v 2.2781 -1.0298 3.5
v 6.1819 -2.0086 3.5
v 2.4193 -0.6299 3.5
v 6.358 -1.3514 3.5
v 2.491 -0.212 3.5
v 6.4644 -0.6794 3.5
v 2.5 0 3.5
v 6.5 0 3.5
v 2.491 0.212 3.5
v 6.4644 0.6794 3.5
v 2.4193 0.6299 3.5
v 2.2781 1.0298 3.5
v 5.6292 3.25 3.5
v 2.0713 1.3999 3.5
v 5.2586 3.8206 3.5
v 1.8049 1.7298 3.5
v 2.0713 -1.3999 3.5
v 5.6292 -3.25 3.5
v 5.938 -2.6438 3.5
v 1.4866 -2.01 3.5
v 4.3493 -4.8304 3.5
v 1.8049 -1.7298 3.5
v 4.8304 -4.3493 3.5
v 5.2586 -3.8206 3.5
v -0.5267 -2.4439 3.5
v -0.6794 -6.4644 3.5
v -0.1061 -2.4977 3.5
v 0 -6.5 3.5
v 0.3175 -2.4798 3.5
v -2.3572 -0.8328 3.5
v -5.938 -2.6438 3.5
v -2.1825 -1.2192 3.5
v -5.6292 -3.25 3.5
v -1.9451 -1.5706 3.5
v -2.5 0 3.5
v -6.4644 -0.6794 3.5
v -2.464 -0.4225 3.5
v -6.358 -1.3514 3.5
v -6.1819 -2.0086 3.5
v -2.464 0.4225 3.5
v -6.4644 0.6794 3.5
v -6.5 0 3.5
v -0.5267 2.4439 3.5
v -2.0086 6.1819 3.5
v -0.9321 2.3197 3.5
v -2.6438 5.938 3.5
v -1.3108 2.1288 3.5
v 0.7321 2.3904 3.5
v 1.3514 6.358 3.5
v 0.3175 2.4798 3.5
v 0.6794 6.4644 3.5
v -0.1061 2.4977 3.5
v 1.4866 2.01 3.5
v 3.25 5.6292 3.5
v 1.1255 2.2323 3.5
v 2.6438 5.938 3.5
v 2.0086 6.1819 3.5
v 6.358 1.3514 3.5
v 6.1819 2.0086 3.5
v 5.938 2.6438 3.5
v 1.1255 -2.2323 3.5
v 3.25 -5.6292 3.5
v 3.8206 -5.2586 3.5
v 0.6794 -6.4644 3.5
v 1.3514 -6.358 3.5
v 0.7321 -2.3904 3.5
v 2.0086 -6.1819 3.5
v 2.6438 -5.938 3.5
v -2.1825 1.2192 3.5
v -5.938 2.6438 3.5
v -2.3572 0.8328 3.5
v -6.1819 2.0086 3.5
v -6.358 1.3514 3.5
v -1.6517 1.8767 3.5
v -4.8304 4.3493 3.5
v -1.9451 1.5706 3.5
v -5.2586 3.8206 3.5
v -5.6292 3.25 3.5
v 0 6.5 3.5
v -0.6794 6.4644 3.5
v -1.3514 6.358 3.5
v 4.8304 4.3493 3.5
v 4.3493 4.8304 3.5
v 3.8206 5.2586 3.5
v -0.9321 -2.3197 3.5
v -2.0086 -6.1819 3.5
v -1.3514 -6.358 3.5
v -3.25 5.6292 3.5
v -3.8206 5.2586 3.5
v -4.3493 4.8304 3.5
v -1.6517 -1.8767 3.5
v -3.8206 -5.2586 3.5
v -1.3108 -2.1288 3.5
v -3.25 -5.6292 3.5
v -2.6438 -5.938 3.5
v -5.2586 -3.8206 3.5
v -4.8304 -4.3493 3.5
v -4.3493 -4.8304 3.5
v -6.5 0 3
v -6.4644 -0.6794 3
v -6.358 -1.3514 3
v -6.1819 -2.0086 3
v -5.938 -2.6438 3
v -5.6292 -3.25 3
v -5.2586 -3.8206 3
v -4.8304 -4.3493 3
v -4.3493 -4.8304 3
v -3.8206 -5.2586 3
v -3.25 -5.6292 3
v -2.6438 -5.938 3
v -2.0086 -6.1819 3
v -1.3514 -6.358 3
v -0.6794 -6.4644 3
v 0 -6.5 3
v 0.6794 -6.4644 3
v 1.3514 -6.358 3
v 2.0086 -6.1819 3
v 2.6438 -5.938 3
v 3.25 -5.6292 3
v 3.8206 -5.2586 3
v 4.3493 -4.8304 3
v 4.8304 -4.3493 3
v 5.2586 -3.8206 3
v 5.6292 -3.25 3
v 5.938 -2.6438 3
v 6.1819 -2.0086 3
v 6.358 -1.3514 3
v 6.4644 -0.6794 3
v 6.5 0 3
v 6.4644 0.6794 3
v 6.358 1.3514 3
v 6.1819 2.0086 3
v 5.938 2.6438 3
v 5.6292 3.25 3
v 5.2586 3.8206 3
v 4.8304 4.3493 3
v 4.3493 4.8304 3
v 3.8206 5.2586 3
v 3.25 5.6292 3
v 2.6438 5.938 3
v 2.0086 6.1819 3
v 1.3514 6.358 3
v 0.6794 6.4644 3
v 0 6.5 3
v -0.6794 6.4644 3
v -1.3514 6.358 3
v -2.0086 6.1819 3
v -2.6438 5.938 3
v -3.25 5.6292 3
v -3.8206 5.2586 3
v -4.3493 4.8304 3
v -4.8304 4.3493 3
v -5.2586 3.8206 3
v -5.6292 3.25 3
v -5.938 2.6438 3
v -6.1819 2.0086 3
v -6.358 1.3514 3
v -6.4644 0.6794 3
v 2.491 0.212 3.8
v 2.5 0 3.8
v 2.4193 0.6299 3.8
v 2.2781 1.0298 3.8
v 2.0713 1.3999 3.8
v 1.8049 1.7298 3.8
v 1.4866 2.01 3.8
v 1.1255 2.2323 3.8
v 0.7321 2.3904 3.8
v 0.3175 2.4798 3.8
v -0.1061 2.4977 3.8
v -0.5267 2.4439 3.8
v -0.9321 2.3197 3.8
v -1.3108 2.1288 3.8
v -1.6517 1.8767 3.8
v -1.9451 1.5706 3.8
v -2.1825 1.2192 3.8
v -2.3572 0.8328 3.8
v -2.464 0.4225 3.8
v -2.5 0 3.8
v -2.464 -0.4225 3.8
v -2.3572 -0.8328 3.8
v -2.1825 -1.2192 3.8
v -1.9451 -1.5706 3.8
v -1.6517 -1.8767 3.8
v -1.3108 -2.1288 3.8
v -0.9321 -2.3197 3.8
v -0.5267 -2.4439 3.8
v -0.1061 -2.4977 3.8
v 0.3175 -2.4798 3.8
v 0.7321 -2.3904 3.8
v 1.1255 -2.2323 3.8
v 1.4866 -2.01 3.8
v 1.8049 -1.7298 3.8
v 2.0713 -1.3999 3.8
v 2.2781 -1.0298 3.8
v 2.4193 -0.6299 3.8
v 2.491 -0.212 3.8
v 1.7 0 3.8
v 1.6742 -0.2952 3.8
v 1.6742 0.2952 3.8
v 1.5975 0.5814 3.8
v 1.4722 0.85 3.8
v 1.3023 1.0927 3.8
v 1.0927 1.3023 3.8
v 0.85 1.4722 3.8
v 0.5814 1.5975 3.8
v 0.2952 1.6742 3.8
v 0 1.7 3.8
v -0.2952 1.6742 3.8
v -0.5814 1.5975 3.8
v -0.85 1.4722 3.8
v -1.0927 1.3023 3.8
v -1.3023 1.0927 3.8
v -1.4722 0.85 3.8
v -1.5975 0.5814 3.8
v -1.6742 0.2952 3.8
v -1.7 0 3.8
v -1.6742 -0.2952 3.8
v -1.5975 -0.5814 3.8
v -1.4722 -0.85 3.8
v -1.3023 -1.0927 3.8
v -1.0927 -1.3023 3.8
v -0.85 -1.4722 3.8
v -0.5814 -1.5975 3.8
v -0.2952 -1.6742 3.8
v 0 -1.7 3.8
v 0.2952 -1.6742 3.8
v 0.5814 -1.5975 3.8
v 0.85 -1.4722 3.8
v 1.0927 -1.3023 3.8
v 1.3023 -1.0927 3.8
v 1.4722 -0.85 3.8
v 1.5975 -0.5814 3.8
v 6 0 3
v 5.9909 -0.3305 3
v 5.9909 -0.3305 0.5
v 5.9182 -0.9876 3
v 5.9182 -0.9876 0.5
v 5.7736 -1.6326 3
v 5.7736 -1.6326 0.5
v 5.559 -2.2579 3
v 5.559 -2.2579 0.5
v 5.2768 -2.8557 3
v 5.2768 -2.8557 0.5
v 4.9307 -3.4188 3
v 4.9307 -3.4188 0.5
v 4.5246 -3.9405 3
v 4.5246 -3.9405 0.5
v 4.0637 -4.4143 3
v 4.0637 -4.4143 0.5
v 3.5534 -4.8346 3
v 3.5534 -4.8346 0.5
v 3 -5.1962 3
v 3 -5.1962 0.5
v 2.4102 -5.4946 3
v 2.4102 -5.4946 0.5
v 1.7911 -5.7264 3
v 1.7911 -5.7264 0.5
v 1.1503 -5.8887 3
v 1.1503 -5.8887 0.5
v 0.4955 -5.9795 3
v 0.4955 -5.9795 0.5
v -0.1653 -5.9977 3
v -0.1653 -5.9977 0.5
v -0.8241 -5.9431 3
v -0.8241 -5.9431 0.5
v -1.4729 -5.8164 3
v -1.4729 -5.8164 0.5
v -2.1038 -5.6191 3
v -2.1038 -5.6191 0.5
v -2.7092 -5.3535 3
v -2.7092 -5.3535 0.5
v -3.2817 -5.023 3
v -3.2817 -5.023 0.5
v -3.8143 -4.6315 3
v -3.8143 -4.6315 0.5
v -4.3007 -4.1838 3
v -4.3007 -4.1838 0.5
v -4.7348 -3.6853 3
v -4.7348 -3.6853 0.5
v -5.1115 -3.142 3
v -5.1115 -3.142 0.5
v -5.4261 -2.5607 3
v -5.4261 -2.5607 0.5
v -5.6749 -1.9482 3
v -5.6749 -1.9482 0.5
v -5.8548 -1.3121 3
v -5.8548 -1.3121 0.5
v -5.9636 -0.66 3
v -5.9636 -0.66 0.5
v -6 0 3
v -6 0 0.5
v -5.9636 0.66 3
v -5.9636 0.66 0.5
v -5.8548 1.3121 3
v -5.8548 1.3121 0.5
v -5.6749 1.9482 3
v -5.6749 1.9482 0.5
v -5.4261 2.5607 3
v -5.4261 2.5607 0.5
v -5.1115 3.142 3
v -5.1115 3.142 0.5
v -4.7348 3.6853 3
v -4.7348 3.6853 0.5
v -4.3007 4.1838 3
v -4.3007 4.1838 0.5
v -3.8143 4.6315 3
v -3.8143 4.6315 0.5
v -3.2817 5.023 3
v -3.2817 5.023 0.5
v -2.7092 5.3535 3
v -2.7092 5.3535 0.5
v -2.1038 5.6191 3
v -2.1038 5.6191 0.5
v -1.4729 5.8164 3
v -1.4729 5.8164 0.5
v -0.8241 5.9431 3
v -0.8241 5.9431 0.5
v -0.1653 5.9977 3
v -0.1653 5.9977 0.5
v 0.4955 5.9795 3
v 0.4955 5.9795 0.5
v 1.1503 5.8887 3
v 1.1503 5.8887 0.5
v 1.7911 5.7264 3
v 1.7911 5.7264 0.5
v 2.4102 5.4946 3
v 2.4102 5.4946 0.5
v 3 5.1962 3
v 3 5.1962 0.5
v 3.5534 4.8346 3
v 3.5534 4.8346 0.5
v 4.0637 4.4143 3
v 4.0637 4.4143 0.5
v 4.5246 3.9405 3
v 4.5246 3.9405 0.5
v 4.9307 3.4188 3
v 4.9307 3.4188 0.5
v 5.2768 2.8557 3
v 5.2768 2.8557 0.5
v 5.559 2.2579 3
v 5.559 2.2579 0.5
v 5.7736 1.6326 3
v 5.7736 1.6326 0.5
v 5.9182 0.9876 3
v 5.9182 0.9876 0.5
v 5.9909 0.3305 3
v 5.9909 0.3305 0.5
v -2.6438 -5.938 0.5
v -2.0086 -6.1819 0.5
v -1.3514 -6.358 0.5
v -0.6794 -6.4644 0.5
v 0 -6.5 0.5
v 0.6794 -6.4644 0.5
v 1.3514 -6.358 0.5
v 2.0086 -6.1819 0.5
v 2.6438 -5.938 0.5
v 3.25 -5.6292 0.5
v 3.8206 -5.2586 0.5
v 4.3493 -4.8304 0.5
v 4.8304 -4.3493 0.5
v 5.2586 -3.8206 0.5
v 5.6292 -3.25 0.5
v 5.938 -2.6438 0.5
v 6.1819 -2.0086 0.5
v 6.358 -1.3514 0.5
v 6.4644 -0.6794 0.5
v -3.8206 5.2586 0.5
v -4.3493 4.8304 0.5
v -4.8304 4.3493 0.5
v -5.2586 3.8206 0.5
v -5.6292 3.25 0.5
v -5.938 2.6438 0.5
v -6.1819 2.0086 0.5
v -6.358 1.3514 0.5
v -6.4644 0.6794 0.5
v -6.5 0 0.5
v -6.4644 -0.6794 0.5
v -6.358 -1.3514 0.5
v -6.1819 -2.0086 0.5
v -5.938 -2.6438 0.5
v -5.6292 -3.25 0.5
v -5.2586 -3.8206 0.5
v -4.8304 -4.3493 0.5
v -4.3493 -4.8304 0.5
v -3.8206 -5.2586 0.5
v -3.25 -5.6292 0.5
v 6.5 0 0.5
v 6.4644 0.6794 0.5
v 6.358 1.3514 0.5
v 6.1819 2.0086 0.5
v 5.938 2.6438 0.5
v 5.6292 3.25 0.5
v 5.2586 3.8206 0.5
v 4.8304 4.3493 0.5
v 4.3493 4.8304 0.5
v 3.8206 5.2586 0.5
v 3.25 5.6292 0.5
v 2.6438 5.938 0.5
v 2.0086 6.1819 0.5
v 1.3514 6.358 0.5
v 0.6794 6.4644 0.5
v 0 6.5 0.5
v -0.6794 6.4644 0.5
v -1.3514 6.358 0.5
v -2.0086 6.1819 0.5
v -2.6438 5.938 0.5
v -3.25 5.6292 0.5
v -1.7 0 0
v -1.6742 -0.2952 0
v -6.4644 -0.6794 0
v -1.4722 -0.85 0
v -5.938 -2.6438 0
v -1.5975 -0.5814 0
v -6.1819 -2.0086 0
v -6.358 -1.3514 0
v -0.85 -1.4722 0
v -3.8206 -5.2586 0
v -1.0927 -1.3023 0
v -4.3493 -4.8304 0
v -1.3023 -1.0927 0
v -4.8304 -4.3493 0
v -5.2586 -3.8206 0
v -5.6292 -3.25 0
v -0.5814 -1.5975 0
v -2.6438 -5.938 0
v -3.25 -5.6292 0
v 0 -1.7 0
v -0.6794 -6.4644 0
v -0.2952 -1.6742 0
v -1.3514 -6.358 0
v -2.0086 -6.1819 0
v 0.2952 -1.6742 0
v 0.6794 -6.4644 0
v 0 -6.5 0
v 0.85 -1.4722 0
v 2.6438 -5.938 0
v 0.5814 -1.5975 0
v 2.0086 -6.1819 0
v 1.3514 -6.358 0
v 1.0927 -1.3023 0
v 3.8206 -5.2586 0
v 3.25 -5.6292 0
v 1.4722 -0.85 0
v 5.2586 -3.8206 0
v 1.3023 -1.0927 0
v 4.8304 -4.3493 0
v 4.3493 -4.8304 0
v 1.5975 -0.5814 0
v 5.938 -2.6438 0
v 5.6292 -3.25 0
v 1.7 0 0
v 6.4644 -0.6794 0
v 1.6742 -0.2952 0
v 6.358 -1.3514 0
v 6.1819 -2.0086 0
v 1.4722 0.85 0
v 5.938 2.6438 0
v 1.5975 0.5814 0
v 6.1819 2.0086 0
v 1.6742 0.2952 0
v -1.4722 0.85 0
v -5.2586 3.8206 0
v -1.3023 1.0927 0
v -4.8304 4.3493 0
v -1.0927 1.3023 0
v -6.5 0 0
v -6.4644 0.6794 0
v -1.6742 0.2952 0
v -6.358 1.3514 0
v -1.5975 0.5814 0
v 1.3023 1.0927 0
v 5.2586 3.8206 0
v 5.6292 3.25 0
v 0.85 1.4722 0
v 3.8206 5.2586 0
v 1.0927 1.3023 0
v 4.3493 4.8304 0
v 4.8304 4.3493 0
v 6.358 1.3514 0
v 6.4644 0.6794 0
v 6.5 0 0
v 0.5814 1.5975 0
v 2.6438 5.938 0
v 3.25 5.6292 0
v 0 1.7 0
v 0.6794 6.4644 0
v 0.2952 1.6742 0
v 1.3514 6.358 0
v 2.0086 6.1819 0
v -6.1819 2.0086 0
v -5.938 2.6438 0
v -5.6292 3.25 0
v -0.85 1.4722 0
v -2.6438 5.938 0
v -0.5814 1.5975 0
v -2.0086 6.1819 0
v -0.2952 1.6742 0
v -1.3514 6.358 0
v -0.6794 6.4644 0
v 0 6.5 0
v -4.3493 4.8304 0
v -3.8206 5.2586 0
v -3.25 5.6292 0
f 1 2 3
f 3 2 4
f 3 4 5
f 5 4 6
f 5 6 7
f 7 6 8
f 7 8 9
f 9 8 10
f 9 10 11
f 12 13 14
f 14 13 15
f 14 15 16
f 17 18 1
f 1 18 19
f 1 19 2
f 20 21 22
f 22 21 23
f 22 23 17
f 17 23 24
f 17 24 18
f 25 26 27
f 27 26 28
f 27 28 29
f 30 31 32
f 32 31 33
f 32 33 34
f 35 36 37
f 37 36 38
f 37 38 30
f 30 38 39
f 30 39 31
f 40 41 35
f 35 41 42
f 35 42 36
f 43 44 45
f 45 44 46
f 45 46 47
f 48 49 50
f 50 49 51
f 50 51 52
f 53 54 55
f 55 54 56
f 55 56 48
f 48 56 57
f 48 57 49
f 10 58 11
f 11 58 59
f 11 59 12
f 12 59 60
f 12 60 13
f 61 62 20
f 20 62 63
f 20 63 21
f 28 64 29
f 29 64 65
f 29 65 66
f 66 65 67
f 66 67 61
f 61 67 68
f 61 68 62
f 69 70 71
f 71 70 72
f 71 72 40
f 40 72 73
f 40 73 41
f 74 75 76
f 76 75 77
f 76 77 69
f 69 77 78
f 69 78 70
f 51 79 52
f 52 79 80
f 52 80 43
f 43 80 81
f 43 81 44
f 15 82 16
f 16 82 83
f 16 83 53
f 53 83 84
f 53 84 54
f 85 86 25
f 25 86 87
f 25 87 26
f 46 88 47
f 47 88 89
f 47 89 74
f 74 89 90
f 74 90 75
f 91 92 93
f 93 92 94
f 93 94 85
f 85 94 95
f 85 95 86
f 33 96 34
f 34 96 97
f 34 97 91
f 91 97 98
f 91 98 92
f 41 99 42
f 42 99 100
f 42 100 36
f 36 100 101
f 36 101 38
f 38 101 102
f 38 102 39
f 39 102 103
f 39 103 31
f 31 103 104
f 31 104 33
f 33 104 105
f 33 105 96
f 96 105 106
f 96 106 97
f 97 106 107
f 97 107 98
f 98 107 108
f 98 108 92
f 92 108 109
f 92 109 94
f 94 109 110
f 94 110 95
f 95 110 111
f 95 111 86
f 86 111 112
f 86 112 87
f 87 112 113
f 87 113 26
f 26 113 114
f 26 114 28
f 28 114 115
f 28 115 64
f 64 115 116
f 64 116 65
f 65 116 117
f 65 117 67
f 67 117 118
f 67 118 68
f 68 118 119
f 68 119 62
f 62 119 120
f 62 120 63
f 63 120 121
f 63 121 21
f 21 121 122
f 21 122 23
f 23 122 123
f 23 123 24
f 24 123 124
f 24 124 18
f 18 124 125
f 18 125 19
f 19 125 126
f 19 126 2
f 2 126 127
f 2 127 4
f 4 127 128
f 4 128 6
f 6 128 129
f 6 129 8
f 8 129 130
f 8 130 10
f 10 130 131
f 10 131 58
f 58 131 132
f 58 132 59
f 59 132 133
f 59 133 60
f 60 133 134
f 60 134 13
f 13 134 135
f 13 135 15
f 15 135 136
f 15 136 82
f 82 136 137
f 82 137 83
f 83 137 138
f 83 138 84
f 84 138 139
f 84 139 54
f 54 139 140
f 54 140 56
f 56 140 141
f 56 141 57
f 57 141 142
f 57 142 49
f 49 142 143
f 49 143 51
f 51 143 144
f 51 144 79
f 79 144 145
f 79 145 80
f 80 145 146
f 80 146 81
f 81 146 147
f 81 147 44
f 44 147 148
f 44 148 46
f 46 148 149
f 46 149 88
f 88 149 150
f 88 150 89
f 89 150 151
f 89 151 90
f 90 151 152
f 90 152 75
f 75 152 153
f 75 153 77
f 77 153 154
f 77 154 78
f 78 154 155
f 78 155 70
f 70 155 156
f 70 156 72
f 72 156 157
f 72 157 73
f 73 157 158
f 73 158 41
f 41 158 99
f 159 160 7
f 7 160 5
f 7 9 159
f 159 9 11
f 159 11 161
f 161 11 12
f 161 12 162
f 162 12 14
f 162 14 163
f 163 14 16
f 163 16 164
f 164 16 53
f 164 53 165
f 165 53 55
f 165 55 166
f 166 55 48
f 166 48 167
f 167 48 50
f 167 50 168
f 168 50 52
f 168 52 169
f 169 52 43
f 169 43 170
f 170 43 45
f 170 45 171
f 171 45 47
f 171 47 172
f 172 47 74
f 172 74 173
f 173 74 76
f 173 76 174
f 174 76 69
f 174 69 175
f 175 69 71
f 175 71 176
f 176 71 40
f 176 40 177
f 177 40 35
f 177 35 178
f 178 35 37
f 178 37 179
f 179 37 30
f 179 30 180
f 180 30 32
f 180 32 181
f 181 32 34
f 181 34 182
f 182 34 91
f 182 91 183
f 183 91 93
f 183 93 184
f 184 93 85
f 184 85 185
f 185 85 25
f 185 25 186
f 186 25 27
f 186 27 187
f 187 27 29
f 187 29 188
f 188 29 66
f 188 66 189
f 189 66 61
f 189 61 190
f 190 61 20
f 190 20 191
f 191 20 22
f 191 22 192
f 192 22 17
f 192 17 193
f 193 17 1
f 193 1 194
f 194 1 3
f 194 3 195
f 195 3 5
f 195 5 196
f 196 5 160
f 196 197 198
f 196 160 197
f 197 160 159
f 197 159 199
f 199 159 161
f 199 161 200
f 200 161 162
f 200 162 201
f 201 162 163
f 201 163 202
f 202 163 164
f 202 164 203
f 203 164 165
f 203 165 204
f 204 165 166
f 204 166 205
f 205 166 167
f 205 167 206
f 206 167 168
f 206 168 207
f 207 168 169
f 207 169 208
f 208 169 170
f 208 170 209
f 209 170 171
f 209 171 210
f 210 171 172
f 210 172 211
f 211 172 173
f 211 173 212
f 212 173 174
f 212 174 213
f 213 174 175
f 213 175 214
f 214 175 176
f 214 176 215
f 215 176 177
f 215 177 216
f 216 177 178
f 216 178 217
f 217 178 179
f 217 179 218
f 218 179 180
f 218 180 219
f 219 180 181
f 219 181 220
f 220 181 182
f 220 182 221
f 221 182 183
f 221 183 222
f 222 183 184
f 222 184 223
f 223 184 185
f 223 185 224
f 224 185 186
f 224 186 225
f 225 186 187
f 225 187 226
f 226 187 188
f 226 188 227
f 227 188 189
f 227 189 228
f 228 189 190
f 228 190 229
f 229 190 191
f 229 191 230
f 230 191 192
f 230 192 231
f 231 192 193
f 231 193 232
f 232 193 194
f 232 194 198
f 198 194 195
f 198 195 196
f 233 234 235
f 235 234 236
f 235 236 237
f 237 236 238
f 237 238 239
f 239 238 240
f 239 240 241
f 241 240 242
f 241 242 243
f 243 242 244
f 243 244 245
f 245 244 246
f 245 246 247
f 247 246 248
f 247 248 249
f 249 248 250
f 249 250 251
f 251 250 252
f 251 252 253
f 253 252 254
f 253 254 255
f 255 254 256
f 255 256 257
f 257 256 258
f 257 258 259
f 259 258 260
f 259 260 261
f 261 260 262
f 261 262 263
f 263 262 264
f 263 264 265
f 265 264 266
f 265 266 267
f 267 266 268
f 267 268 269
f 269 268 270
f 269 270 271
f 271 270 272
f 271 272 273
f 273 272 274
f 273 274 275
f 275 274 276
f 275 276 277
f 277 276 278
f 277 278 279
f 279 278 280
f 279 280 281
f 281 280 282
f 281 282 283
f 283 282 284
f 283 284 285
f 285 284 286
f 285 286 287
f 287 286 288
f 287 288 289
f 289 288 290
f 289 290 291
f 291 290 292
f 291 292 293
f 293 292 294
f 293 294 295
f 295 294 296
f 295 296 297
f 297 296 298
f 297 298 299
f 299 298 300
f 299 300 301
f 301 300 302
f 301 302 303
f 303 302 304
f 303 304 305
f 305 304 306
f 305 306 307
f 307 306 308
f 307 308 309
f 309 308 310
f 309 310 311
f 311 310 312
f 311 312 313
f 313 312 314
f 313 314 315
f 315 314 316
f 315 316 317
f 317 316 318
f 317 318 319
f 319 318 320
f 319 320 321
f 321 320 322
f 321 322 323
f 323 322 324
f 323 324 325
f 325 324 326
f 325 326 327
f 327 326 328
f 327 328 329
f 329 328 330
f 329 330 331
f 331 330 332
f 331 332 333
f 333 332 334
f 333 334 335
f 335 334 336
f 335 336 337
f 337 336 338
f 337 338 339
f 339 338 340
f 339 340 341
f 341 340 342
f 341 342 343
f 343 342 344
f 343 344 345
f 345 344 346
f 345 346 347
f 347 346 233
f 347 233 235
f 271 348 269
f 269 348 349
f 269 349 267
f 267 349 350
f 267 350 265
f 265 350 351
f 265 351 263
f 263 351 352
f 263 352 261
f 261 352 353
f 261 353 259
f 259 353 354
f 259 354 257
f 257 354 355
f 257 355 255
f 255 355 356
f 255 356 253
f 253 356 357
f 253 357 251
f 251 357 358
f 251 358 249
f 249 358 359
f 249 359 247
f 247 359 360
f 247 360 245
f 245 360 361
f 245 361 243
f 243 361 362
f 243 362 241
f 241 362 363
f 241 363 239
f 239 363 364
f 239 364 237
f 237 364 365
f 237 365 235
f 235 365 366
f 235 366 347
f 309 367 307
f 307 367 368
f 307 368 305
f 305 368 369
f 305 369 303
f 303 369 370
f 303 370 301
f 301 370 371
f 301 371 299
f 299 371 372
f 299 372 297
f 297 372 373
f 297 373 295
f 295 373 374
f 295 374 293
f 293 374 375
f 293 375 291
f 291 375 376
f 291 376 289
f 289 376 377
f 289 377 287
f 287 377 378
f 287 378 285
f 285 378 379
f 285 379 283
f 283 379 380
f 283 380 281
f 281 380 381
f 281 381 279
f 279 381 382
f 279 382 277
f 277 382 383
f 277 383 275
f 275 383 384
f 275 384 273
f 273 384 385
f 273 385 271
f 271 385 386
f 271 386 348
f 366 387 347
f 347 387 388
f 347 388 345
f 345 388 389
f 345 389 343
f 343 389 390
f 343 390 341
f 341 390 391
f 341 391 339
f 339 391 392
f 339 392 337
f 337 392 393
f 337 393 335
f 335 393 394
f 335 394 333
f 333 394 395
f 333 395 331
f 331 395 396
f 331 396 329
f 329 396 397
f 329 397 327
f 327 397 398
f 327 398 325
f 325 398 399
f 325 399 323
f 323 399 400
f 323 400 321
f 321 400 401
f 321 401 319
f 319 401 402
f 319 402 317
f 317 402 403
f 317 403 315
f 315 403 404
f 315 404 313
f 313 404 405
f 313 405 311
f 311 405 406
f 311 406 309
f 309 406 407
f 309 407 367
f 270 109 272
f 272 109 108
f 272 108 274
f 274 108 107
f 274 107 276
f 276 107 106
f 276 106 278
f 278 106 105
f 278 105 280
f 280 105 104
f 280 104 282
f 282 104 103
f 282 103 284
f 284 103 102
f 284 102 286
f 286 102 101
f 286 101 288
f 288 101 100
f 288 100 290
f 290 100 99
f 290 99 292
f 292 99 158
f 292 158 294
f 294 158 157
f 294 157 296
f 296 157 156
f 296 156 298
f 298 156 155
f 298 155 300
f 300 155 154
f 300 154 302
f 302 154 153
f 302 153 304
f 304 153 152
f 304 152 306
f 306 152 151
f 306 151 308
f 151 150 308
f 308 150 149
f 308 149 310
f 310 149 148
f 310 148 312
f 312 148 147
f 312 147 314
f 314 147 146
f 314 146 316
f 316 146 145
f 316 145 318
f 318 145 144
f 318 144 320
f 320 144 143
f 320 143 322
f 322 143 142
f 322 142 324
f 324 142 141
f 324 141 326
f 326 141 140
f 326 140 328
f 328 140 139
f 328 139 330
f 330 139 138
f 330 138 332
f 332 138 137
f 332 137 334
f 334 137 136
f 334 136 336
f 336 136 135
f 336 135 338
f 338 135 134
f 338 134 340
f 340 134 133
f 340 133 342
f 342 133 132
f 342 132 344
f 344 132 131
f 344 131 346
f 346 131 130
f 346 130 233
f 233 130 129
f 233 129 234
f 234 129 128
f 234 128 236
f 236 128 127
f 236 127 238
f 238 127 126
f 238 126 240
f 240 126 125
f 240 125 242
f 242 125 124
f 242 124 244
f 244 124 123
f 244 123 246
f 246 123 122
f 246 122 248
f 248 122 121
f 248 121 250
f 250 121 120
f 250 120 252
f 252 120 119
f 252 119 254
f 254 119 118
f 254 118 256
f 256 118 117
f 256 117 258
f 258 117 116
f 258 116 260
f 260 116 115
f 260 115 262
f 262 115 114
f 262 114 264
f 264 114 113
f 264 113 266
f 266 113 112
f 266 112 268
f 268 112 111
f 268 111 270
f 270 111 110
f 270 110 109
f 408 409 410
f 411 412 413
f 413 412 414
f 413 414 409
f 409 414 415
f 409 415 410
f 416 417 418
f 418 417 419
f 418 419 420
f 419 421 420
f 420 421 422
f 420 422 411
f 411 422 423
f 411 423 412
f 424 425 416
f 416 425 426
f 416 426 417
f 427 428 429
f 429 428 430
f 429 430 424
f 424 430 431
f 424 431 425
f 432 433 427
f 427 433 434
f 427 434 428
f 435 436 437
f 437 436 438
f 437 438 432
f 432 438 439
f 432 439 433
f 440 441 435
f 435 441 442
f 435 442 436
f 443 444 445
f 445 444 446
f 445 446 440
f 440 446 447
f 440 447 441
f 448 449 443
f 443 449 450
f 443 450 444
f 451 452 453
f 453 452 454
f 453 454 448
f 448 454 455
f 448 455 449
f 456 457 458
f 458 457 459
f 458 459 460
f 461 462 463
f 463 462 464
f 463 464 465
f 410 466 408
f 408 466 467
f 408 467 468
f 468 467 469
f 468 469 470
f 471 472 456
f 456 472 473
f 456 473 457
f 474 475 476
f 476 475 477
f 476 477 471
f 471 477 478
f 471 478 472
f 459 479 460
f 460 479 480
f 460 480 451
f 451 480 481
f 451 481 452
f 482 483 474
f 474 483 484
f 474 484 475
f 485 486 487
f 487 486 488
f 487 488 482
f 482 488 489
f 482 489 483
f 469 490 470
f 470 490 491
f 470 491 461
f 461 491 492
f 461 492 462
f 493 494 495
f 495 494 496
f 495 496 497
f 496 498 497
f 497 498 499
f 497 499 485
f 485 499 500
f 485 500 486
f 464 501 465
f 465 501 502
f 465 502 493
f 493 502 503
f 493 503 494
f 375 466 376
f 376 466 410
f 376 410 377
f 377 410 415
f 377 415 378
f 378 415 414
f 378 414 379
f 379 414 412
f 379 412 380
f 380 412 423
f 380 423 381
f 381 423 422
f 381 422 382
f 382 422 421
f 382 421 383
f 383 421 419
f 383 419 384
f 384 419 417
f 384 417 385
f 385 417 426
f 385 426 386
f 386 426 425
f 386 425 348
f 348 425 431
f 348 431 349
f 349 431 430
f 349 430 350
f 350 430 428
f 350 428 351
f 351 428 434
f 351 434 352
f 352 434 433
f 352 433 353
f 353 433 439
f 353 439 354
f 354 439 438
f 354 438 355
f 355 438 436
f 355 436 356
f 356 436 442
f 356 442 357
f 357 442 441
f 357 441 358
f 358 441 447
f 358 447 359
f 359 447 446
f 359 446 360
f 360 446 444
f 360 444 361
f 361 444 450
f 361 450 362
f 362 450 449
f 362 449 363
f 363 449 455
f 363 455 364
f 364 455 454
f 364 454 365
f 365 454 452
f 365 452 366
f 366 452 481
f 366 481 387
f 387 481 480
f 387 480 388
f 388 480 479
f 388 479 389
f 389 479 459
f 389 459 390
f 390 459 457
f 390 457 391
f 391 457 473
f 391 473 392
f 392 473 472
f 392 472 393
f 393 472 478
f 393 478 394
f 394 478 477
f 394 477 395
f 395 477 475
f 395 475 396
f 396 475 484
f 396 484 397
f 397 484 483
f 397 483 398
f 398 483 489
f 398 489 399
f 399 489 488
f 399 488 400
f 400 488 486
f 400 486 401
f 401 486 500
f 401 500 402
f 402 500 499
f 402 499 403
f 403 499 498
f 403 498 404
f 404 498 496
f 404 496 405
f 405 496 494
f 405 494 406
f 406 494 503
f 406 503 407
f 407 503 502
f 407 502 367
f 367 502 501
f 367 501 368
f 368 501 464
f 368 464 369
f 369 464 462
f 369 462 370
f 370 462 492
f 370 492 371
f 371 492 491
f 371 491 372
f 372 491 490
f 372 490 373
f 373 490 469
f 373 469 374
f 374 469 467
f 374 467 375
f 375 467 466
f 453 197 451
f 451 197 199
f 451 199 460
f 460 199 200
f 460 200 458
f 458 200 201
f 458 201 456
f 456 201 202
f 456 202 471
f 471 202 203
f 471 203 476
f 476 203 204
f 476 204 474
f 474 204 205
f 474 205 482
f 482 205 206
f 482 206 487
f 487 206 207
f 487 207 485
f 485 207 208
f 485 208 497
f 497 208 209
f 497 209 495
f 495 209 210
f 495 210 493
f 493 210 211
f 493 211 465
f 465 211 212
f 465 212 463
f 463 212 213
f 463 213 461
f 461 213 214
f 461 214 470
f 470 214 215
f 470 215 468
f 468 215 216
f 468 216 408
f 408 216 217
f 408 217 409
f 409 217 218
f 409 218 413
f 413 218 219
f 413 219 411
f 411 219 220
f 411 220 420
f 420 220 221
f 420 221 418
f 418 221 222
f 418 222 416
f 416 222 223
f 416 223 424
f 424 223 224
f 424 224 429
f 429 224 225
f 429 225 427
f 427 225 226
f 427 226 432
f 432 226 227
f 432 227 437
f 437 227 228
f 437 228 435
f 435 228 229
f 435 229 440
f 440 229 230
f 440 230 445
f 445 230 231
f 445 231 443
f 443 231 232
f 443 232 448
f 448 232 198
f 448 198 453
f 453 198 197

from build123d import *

# Parameters (mm, degrees)
SKETCH1_R           = 6.5
BOSS_EXTRUDE1_DEPTH = 3.5
SKETCH2_R           = 2.5
BOSS_EXTRUDE2_DEPTH = 0.3
SKETCH3_R           = 6.5
SKETCH3_R_2         = 6
CUT_EXTRUDE1_DEPTH  = 2.5
SKETCH4_R           = 1.7
CUT_EXTRUDE2_DEPTH  = 4.8


with BuildPart() as part:
    # Sketch1 → Boss-Extrude1 (new body)
    with BuildSketch(Plane.XY):
        Circle(SKETCH1_R)
    extrude(amount=BOSS_EXTRUDE1_DEPTH)

    # Sketch2 → Boss-Extrude2 (add)
    with BuildSketch(Plane.XY.offset(3.5)):
        Circle(SKETCH2_R)
    extrude(amount=BOSS_EXTRUDE2_DEPTH)

    # Sketch3 → Cut-Extrude1 (cut)
    with BuildSketch(Plane(origin=(0, 0, 0.5), x_dir=(-1, 0, 0), z_dir=(0, 0, -1))):
        Circle(SKETCH3_R)
        Circle(SKETCH3_R_2, mode=Mode.SUBTRACT)
    extrude(amount=-CUT_EXTRUDE1_DEPTH, mode=Mode.SUBTRACT)

    # Sketch4 → Cut-Extrude2 (cut, through all)
    with BuildSketch(Plane.XY.offset(3.8)):
        Circle(SKETCH4_R)
    extrude(amount=-CUT_EXTRUDE2_DEPTH, mode=Mode.SUBTRACT)


solid = part.part
